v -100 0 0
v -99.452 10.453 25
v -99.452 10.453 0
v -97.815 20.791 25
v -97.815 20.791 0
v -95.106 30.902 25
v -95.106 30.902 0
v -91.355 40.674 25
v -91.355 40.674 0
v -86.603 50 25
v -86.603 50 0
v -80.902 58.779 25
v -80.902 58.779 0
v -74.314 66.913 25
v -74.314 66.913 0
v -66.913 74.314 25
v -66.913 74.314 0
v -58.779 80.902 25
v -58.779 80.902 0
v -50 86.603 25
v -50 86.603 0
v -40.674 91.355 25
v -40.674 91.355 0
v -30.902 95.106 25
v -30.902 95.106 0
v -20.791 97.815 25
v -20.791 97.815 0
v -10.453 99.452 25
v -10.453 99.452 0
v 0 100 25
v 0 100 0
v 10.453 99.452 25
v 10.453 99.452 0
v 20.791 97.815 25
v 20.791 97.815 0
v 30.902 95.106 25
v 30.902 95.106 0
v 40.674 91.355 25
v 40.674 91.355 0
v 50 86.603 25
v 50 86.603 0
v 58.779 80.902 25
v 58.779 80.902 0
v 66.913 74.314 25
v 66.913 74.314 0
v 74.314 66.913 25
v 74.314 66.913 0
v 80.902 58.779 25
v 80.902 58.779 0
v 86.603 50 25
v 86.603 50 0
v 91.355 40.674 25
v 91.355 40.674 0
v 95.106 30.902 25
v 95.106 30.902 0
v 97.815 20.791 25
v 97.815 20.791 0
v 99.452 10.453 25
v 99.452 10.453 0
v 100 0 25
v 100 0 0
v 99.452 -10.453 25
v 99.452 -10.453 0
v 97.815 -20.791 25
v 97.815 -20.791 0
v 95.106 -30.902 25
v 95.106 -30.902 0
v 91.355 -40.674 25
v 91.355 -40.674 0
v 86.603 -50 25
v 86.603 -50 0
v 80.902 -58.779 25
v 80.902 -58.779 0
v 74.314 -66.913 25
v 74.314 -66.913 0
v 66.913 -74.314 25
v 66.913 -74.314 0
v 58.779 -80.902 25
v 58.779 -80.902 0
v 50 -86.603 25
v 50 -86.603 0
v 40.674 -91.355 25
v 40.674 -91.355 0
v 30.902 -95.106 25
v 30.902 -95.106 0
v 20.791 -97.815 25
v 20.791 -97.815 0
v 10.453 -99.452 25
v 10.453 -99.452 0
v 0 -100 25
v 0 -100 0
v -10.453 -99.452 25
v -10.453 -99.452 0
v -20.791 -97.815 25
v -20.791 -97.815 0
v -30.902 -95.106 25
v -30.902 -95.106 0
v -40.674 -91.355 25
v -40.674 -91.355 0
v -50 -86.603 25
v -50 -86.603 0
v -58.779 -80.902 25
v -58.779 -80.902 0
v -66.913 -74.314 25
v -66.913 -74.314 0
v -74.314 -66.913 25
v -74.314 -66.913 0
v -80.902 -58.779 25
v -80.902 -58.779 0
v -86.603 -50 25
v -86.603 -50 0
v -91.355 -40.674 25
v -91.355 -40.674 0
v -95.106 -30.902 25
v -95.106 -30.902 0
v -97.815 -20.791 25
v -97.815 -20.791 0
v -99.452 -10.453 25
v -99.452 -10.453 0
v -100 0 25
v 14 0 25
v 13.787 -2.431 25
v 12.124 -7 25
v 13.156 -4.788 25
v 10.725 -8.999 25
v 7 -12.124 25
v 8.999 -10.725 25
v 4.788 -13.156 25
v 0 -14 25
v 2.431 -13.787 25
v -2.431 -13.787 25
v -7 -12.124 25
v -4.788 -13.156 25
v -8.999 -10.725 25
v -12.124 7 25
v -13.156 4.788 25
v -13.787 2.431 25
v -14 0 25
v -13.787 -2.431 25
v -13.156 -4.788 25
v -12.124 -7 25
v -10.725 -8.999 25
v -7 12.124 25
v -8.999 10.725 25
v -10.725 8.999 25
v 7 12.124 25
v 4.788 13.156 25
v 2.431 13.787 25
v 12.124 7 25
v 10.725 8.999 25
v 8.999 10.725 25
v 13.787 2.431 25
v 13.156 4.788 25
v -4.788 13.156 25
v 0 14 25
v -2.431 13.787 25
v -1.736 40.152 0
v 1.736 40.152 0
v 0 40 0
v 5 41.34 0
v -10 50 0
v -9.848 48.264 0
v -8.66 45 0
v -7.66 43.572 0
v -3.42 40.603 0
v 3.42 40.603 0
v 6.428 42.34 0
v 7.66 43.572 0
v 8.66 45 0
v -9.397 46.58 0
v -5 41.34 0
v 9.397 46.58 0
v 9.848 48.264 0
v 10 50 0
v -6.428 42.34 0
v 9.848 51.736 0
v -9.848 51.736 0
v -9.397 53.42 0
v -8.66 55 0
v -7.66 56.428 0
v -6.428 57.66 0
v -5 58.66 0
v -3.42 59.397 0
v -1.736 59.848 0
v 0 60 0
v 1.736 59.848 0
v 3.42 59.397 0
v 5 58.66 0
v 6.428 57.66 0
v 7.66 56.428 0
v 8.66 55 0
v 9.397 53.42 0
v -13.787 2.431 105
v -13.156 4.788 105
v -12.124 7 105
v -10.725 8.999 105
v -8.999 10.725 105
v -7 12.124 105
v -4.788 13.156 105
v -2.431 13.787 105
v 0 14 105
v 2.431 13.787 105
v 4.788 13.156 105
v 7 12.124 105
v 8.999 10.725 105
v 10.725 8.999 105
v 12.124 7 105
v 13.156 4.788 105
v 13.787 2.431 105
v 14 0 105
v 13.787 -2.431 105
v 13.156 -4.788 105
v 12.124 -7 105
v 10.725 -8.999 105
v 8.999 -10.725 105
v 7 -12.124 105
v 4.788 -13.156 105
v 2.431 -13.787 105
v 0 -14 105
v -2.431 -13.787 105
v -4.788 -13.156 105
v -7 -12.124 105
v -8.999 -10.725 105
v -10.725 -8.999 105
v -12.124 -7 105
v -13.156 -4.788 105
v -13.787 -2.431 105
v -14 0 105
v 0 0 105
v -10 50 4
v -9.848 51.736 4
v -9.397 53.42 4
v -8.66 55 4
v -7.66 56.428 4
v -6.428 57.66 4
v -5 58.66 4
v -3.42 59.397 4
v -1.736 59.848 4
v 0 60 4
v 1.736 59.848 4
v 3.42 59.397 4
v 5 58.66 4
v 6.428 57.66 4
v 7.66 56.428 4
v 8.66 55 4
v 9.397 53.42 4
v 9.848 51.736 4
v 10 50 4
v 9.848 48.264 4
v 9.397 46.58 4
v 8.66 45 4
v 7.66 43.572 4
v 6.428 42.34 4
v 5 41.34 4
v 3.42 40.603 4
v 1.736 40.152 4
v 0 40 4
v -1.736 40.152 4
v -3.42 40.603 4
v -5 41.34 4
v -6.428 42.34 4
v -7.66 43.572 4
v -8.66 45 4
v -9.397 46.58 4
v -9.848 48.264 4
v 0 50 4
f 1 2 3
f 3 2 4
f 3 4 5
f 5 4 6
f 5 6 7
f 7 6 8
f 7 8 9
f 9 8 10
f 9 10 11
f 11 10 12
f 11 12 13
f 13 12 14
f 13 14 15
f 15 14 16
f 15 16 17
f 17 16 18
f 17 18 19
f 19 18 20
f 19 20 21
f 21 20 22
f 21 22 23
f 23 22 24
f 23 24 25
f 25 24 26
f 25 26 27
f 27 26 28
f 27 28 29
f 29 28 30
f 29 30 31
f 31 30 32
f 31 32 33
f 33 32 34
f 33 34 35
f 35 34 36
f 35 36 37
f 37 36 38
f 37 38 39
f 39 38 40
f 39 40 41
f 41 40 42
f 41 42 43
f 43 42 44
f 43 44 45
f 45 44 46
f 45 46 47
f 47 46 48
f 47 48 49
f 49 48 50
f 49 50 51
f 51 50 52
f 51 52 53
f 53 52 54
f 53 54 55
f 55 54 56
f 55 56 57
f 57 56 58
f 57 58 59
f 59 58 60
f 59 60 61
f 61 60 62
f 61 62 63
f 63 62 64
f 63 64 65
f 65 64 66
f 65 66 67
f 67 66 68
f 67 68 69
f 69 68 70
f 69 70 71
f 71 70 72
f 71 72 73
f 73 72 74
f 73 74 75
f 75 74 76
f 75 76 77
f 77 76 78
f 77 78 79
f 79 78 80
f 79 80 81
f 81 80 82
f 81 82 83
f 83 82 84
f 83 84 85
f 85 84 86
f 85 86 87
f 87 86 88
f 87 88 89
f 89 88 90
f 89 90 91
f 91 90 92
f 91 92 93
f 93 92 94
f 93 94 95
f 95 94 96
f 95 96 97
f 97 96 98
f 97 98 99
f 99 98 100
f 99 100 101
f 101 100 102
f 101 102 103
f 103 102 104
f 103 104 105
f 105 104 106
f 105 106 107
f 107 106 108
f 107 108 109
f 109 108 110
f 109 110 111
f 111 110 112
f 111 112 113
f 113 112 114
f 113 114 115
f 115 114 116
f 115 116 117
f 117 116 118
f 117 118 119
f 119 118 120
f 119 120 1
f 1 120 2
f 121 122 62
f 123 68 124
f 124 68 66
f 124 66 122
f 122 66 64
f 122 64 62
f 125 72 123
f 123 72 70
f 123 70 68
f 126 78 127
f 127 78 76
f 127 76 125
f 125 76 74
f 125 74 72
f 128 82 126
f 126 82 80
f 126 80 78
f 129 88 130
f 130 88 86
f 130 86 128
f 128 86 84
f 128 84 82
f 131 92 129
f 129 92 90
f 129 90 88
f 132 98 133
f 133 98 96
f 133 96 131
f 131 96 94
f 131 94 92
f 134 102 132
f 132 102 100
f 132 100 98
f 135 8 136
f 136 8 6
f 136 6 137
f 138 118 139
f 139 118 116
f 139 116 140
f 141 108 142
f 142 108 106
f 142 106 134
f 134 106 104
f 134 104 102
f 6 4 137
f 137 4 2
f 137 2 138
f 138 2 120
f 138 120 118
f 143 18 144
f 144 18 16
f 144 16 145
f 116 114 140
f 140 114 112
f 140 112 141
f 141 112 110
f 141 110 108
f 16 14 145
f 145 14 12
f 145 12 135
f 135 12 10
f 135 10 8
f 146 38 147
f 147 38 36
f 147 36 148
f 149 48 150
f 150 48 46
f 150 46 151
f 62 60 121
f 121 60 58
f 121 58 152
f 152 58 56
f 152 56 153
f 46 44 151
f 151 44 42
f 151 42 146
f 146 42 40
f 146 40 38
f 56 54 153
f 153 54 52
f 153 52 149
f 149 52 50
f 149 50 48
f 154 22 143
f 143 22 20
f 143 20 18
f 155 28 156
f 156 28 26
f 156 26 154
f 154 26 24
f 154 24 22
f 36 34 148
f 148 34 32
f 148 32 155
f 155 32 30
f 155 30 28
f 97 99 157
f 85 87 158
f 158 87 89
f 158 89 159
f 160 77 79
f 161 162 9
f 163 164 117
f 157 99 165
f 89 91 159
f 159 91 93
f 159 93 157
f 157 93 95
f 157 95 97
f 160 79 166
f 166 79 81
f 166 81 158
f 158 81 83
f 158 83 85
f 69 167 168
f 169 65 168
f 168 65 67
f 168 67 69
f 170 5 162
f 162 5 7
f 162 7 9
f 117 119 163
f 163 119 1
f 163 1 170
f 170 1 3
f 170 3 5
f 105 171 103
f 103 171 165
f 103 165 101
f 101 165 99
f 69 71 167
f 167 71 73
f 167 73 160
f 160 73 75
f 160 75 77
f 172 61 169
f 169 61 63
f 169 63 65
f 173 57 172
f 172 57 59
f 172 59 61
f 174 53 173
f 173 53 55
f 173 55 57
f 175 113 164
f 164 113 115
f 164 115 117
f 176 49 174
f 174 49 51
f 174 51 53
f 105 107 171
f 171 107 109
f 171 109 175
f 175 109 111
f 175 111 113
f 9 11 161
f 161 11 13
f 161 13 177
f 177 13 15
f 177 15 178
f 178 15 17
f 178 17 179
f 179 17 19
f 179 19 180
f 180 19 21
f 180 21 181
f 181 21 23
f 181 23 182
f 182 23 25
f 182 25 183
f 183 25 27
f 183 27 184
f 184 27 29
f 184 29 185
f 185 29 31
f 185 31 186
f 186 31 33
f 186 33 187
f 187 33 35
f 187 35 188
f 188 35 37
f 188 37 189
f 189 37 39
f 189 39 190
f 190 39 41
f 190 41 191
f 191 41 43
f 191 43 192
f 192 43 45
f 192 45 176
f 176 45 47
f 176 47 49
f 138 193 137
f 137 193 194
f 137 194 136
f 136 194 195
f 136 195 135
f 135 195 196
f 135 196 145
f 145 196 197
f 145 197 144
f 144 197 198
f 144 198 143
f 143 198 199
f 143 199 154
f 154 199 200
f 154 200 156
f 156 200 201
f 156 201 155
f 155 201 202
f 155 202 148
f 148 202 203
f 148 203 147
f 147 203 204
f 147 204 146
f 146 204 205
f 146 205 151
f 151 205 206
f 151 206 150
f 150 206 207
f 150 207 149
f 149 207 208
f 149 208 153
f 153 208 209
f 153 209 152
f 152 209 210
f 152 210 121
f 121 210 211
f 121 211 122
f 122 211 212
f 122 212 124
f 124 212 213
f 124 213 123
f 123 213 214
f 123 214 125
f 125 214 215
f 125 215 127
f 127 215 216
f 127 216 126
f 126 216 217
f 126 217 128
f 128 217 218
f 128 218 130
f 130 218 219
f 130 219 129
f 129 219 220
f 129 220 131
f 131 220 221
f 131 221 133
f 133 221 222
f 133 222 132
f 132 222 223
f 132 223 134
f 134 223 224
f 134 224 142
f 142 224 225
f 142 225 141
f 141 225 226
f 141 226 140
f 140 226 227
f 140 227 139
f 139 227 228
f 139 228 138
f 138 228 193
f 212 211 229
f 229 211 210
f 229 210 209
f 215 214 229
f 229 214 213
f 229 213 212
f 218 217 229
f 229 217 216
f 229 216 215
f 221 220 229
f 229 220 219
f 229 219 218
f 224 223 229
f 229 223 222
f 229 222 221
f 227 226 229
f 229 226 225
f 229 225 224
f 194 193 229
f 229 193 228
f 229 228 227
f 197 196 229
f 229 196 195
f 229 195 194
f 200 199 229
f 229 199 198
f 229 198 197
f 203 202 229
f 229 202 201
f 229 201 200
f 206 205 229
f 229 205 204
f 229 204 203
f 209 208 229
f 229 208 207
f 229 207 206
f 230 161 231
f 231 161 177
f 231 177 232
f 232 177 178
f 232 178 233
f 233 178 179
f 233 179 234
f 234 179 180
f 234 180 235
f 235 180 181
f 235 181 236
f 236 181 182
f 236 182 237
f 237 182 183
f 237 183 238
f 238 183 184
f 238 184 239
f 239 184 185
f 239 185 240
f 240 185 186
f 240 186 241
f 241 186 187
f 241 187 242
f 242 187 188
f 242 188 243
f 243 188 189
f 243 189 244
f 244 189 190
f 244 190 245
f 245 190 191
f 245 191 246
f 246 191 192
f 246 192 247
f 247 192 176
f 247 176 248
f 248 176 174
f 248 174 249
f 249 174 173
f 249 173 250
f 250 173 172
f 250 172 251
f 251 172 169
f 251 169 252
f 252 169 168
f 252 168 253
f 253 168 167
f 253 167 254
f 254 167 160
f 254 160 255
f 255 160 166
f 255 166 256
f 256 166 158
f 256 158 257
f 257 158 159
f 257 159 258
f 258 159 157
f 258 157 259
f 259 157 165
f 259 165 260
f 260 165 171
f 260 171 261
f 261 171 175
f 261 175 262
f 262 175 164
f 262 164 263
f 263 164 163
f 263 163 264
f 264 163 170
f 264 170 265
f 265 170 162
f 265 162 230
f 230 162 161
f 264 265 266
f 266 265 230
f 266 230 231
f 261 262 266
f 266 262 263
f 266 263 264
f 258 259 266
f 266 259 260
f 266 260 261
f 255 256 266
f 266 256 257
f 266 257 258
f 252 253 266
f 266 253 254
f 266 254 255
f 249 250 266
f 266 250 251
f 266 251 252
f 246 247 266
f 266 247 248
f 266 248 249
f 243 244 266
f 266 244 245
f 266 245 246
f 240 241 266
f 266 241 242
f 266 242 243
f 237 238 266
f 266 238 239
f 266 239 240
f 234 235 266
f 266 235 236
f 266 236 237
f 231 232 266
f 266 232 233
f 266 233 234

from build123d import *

# Parameters (mm, degrees)
SKETCH1_R           = 100
BOSS_EXTRUDE1_DEPTH = 25
SKETCH2_R           = 14
BOSS_EXTRUDE2_DEPTH = 80
SKETCH3_R           = 10
CUT_EXTRUDE1_DEPTH  = 4


with BuildPart() as part:
    # Sketch1 → Boss-Extrude1 (new body)
    with BuildSketch(Plane.XY):
        Circle(SKETCH1_R)
    extrude(amount=BOSS_EXTRUDE1_DEPTH)

    # Sketch2 → Boss-Extrude2 (add)
    with BuildSketch(Plane.XY.offset(25)):
        Circle(SKETCH2_R)
    extrude(amount=BOSS_EXTRUDE2_DEPTH)

    # Sketch3 → Cut-Extrude1 (cut)
    with BuildSketch(Plane(origin=(0, 0, 0), x_dir=(-1, 0, 0), z_dir=(0, 0, -1))):
        with Locations((0, 50)):
            Circle(SKETCH3_R)
    extrude(amount=-CUT_EXTRUDE1_DEPTH, mode=Mode.SUBTRACT)


solid = part.part
